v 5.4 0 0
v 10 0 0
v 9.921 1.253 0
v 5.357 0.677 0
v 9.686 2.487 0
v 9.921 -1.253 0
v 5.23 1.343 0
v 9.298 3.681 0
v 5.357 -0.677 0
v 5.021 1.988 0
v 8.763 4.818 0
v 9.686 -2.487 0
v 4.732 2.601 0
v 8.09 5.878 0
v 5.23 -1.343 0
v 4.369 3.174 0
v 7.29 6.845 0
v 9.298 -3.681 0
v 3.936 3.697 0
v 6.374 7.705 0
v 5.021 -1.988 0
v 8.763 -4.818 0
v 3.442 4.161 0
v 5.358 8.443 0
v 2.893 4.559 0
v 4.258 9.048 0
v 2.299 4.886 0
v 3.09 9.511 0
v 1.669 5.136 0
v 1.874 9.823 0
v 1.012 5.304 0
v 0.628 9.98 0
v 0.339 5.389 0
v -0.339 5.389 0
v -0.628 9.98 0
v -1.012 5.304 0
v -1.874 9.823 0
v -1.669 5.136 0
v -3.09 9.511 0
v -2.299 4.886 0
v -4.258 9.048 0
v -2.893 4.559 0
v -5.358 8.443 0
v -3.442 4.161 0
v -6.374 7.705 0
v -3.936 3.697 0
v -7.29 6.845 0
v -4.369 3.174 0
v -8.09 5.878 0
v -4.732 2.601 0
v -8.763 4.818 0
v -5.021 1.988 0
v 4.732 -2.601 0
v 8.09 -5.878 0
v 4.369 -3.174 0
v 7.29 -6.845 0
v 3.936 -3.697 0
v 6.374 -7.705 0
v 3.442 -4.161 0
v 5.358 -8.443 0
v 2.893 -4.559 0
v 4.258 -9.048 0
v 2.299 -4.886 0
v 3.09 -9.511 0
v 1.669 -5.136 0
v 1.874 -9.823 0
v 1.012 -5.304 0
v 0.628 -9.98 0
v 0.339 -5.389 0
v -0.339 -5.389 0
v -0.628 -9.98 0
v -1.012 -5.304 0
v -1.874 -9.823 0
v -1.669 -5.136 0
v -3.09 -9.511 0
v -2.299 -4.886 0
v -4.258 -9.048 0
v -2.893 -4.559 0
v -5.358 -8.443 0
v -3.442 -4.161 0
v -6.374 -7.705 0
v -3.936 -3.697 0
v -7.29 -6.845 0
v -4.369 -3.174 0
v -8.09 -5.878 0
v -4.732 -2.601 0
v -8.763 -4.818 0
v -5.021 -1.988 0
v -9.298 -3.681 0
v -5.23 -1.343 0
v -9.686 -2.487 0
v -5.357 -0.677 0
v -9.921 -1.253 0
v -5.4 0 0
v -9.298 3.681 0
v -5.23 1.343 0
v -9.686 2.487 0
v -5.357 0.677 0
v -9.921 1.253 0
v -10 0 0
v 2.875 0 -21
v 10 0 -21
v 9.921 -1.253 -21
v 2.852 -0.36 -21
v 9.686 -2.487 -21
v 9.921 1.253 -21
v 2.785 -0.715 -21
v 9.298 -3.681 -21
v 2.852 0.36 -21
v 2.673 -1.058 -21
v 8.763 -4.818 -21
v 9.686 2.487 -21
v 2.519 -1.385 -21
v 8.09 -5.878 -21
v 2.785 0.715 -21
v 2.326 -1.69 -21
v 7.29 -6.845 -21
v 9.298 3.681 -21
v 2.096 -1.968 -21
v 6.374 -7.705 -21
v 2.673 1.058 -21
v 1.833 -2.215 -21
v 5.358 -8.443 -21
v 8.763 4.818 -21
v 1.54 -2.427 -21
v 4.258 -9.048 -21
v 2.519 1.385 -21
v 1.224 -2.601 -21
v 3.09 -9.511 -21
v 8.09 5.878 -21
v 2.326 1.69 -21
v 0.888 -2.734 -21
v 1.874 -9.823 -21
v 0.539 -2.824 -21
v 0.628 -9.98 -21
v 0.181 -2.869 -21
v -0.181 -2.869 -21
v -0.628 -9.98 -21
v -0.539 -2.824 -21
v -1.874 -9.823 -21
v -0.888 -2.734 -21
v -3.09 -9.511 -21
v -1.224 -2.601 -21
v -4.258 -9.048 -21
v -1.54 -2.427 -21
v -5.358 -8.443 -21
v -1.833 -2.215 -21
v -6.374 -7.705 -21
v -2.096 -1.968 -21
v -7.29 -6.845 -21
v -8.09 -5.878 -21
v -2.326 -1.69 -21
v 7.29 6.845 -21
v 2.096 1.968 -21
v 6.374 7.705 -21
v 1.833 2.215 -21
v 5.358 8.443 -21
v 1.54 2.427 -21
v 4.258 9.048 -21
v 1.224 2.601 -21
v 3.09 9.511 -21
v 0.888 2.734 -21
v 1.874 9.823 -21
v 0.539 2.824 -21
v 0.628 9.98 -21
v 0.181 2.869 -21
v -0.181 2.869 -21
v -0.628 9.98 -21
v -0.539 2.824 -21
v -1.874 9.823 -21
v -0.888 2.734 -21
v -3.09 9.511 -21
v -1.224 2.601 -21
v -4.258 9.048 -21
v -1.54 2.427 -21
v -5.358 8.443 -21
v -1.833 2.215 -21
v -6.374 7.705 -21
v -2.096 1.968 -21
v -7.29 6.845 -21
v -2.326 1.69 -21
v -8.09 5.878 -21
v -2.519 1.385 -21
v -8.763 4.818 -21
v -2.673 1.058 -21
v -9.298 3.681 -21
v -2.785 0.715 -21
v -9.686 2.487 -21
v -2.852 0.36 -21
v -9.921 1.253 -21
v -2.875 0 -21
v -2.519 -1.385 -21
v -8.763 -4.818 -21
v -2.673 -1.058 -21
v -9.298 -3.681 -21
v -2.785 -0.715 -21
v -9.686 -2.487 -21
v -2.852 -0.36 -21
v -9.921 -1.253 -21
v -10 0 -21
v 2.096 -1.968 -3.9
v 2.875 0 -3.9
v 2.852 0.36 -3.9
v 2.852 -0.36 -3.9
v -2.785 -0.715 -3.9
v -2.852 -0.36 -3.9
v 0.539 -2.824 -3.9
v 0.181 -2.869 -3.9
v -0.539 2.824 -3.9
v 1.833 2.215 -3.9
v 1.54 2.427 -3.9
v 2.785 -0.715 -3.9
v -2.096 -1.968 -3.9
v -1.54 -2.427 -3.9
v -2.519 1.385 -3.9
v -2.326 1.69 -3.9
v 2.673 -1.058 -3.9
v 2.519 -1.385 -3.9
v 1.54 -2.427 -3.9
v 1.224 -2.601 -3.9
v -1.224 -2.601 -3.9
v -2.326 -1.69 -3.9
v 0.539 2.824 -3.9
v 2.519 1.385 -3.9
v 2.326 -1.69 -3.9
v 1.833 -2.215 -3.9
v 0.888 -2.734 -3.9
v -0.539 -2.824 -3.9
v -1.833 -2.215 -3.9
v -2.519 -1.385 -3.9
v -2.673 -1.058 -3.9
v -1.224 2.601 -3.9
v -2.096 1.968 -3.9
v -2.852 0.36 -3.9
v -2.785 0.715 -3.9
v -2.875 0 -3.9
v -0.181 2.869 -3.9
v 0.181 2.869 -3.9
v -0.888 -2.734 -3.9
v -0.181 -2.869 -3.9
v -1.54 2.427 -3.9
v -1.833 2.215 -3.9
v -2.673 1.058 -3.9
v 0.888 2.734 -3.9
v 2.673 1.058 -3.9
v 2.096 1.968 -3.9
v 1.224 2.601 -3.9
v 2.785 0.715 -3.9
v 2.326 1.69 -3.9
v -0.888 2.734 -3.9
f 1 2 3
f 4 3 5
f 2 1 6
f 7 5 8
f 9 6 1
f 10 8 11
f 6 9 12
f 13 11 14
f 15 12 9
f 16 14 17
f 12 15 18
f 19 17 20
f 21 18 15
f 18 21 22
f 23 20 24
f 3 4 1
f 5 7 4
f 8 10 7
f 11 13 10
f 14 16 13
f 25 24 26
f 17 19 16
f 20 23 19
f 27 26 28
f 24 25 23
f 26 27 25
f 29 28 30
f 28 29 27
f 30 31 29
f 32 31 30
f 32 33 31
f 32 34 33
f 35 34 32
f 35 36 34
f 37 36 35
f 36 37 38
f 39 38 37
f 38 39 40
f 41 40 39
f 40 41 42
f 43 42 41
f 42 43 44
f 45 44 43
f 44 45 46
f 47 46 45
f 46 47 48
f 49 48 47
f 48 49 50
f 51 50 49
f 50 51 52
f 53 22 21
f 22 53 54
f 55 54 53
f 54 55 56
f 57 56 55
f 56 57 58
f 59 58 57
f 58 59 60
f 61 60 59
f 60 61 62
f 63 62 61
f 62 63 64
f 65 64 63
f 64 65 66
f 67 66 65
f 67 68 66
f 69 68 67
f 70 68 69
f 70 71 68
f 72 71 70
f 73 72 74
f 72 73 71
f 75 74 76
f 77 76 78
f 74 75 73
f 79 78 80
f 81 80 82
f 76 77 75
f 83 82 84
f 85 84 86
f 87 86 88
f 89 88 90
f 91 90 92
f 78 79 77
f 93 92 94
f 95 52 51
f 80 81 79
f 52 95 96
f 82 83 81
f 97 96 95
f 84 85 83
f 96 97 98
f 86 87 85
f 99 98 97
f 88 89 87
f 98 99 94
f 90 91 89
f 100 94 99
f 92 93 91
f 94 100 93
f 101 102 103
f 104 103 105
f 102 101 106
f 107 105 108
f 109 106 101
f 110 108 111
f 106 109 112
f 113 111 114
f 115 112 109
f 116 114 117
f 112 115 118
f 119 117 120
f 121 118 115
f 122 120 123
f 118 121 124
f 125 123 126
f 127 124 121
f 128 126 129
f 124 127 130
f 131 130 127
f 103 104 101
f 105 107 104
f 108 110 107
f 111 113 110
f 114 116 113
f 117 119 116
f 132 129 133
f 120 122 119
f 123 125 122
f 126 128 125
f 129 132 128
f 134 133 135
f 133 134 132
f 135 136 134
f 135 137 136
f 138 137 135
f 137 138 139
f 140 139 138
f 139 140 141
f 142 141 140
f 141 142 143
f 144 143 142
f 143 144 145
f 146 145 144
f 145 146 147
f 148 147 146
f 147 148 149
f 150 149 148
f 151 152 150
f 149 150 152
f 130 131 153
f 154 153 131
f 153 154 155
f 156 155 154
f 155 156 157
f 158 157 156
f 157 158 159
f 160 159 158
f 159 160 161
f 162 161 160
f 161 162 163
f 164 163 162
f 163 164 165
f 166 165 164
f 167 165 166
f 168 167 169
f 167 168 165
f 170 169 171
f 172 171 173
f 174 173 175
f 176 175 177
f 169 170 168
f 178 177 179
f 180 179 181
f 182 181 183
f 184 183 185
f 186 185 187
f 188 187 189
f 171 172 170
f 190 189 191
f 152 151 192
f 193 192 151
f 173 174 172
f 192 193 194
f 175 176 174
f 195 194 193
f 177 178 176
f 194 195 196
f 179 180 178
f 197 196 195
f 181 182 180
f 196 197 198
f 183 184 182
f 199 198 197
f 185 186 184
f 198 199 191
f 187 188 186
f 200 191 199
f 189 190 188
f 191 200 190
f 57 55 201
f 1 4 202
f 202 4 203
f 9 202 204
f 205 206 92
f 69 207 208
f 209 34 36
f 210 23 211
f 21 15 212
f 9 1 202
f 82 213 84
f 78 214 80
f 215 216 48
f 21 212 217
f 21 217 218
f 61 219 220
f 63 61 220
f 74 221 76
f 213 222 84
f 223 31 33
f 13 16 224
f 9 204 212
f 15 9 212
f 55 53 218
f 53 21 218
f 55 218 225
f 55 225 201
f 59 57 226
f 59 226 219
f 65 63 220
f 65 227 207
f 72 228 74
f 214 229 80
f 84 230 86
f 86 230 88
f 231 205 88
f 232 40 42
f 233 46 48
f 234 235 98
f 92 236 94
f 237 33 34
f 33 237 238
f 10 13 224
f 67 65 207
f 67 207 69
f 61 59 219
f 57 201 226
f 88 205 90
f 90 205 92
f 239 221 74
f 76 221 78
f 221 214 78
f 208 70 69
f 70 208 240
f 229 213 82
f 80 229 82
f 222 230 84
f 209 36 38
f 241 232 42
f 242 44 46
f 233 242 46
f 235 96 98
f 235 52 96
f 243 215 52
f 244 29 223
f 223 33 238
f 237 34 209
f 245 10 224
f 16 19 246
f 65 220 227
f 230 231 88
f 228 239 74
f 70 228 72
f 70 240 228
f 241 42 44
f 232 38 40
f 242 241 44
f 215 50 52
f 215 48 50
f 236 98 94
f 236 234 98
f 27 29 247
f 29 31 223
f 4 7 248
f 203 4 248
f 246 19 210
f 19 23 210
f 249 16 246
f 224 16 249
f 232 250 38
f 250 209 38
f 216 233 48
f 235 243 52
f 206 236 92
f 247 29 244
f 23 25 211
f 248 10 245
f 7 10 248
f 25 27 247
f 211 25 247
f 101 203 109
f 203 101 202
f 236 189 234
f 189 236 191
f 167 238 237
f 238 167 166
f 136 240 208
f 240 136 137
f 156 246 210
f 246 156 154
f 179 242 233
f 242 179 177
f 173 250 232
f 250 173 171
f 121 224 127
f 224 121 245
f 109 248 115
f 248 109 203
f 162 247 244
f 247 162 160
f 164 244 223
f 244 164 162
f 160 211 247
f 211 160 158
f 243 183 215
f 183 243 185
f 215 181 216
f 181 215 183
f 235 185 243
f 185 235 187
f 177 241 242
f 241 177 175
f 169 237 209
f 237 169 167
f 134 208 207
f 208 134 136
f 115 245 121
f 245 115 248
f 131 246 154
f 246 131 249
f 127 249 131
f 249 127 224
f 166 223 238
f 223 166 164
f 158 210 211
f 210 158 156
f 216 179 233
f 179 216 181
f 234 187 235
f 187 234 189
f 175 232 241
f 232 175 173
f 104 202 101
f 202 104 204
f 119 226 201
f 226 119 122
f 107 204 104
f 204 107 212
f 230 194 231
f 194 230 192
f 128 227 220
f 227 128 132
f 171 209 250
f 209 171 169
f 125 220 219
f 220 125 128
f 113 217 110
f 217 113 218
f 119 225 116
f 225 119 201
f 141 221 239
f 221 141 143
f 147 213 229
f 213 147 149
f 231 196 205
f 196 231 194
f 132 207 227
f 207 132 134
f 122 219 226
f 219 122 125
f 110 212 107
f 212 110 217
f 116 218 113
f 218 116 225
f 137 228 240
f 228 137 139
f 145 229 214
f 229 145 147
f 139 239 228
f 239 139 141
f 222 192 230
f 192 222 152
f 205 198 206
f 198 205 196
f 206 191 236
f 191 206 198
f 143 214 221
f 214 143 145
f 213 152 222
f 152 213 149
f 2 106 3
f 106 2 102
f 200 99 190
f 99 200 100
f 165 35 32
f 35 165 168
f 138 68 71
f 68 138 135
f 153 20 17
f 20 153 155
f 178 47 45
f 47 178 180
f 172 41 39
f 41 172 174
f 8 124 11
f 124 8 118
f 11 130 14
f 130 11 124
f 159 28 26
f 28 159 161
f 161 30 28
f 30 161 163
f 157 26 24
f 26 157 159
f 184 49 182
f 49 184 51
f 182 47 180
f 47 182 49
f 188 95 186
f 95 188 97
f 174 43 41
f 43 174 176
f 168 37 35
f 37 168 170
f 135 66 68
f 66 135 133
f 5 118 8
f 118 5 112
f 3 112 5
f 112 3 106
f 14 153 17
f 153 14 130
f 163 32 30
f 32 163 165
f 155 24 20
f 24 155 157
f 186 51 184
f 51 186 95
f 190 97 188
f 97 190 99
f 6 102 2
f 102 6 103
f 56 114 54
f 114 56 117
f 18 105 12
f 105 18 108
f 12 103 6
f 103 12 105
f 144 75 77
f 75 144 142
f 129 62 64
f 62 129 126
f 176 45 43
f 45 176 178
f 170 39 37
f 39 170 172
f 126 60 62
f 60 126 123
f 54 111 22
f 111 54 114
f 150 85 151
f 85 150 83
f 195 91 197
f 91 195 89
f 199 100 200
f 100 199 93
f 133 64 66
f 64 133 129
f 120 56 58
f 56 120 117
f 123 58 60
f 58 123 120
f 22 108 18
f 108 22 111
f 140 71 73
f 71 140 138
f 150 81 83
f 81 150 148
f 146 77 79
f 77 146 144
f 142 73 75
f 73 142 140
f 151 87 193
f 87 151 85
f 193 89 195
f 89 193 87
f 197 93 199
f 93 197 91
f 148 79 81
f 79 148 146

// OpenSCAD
$fn = 50;


difference() {
	union() {
		translate(v = [0, 0, -21.0000000000]) {
			cylinder(h = 21, r = 10.0000000000);
		}
		cylinder(h = 0, r = 13.0000000000);
	}
	union() {
		translate(v = [0, 0, 0]) {
			rotate(a = [0, 0, 0]) {
				difference() {
					union() {
						#translate(v = [0, 0, -21.0000000000]) {
							cylinder(h = 21, r = 2.6000000000);
						}
						#translate(v = [0, 0, -3.9000000000]) {
							cylinder(h = 3.9000000000, r1 = 2.8750000000, r2 = 5.4000000000);
						}
						#translate(v = [0, 0, -21.0000000000]) {
							cylinder(h = 21, r = 2.8750000000);
						}
						#translate(v = [0, 0, -21.0000000000]) {
							cylinder(h = 21, r = 2.6000000000);
						}
					}
					union();
				}
			}
		}
	}
}
